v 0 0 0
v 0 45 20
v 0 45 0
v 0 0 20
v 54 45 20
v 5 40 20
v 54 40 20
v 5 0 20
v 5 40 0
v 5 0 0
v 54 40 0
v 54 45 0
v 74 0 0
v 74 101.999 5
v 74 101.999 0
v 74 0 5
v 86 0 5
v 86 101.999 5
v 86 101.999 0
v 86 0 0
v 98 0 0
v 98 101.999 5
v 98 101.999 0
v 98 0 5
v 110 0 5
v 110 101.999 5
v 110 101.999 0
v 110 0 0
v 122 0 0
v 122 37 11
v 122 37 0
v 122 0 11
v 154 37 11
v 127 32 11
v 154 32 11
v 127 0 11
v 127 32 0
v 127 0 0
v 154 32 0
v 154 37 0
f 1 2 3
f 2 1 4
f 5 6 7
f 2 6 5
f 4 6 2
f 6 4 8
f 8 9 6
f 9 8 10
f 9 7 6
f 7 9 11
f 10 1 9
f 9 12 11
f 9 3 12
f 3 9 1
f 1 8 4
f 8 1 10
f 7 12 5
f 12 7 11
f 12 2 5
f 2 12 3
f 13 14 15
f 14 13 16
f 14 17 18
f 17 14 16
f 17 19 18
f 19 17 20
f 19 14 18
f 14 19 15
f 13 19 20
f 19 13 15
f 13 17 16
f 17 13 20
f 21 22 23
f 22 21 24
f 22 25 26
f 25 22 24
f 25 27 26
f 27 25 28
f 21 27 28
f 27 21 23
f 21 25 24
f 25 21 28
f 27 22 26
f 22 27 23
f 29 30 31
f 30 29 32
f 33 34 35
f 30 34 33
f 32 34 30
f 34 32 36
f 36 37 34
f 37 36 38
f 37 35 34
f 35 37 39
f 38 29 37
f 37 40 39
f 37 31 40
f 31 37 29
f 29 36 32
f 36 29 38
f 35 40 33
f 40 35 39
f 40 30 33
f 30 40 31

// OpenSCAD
union() {
	union() {
		union() {
			union() {
				translate(v = [0, 0, 0]) {
					cube(size = [5, 40, 20]);
				}
				translate(v = [0, 40, 0]) {
					cube(size = [54, 5, 20]);
				}
			}
			translate(v = [74, 0, 0]) {
				cube(size = [12, 101.9989522119, 5]);
			}
		}
		translate(v = [98, 0, 0]) {
			cube(size = [12, 101.9989522119, 5]);
		}
	}
	union() {
		translate(v = [122, 0, 0]) {
			cube(size = [5, 32, 11]);
		}
		translate(v = [122, 32, 0]) {
			cube(size = [32, 5, 11]);
		}
	}
}
/***********************************************
*********      SolidPython code:      **********
************************************************
 
## This program finds the required torque
## for each joint of a robotic arm. 
## Jorge Garza

import argparse
import json
import operator
import subprocess
# Numpy-stl
from stl import mesh
from mpl_toolkits import mplot3d
from matplotlib import pyplot
# SolidPython
from solid import *
from solid.utils import *


## (In mm) Average Width of material
AVG_WIDTH = 20
## (In mm) Average Thickness of materials
AVG_TICKNES = 5
## (In mm) Min Distance between Servos
## [Gripper, Wrist2, Wrist, Ulna, Humerus, Base]
AVG_MIN_SERVO_SPACE = [0,40,(40*2+AVG_TICKNES),40,40,40]
## MINIMIZE or MAXIMIZE
## This means that the program will try to make the parts large 
## where Maximize or true is indicated, and will try to use the minimum 
## servo space where Minimize or false is indicated. 
## [Gripper, Wrist2, Wrist, Ulna, Humerus, Base]
SPEC_MIN_MAX = [False, False, False, True, True, False]

#######################################
##  CALCULATE ROBOTIC ARM PARTS #######
#######################################

def find_roboticarm_sizes (arm_length, object_tolift_weight, DoF, 
							min_servo_space, spec_min_max, material_densty):

	## Tuple of arm [[Length],[Weight]]
	## Length (In mm)  of each arm extremity from pivot to pivot.	
	## Starting from gripper to base 
	## Weight (In g)  of each arm extremity	 
	## Starting from gripper to base
	arm_tuple_list = [[], []]
	LENGTH = 0
	WEIGHT = 1


	curr_alength = arm_length
	AVG_DENSITY = 1.2/1000.0	## (in g/mm^3) Average density of X material
	MIN_SERVO_SPACE = 40 		## (In mm) Min Servo space between joints. 
	GRIPPER_MUL = 1.5			## Gripper multiplier number
	material_half_weight = material_densty/1000.0 * AVG_TICKNES * AVG_WIDTH
	for x in range(1, DoF+1):
		alength = 0
		aweight = 0

		## (1DoF) Gripper 
		if (x == 1):
			## Get Volume = (weight (g) / density (g/cm^3) ) and multiply it by 2
			min_gripper = 1.5 * (((object_tolift_weight) / AVG_DENSITY)**(1/3.0))
			if (DoF == 1):
				if (curr_alength < min_gripper):
					print "Gripper may not grab the object"
				alength = curr_alength
				aweight = (material_half_weight * alength)
			else:

				if (curr_alength < min_gripper):
					print "Gripper can't accommodate servo"
					return None

				## Maximize or Minimize the joint
				if (spec_min_max[x-1] == True):
					## Maximize the length of this joint
					missing_space = 0
					missing_toMaximize = 1
					for i in range(x, DoF):
						if (spec_min_max[i] == False):
							missing_space = missing_space + min_servo_space[i]
						if (spec_min_max[i] == True):
							missing_toMaximize = missing_toMaximize + 1
					alength = ((curr_alength) - missing_space) / missing_toMaximize
				else:
					## Don't maximize this joint
					alength = min_gripper

				aweight = (material_half_weight * alength)
				curr_alength = curr_alength - alength
			arm_tuple_list[LENGTH].append(alength)
			arm_tuple_list[WEIGHT].append(aweight)

		## (2DoF) Wrist
		if (x == 2):
			min_wrist = min_servo_space[x-1]
			if (DoF == 2):
				if (curr_alength < min_wrist):
					print "Wrist may not accommodate servo"
				alength = curr_alength
				aweight = (material_half_weight * alength)
			else:
				if (curr_alength < min_wrist):
					print "Wrist can't accommodate servo"
					return None

				## Maximize or Minimize the joint
				if (spec_min_max[x-1] == True):
					## Maximize the length of this joint
					missing_space = 0
					missing_toMaximize = 1
					for i in range(x, DoF):
						if (spec_min_max[i] == False):
							missing_space = missing_space + min_servo_space[i]
						if (spec_min_max[i] == True):
							missing_toMaximize = missing_toMaximize + 1
					alength = ((curr_alength) - missing_space) / missing_toMaximize
				else:
					## Don't maximize this joint
					alength = min_wrist

				aweight = (material_half_weight * alength)
				curr_alength = curr_alength - alength
			arm_tuple_list[LENGTH].append(alength)
			arm_tuple_list[WEIGHT].append(aweight)

		## (3DoF) Wrist 2
		if (x == 3):
			min_wristtwo = min_servo_space[x-1]
			if (DoF == 2):
				if (curr_alength < min_wristtwo):
					print "Wrist may not accommodate servo"
				alength = curr_alength
				aweight = (material_half_weight * alength)
			else:
				if (curr_alength < min_wristtwo):
					print "Wrist can't accommodate servo"
					break;

				## Maximize or Minimize the joint
				if (spec_min_max[x-1] == True):
					## Maximize the length of this joint
					missing_space = 0
					missing_toMaximize = 1
					for i in range(x, DoF):
						if (spec_min_max[i] == False):
							missing_space = missing_space + min_servo_space[i]
						if (spec_min_max[i] == True):
							missing_toMaximize = missing_toMaximize + 1
					alength = ((curr_alength) - missing_space) / missing_toMaximize
				else:
					## Don't maximize this joint
					alength = min_wristtwo

				aweight = (material_half_weight * alength)
				curr_alength = curr_alength - alength
			arm_tuple_list[LENGTH].append(alength)
			arm_tuple_list[WEIGHT].append(aweight)

		## (4DoF) Ulna
		if (x == 4):
			min_ulna = min_servo_space[x-1]
			if (DoF == 4):
				if (curr_alength < min_ulna):
					print "Ulna may not accommodate servo"
				alength = curr_alength
				aweight = (material_half_weight * alength)
			else:
				if (curr_alength < min_ulna):
					print "Ulna can't accommodate servo"
					return None

				## Maximize or Minimize the joint
				if (spec_min_max[x-1] == True):
					## Maximize the length of this joint
					missing_space = 0
					missing_toMaximize = 1
					for i in range(x, DoF):
						if (spec_min_max[i] == False):
							missing_space = missing_space + min_servo_space[i]
						if (spec_min_max[i] == True):
							missing_toMaximize = missing_toMaximize + 1
					alength = ((curr_alength) - missing_space) / missing_toMaximize
				else:
					## Don't maximize this joint
					alength = min_ulna

				##alength = ((curr_alength - MIN_SERVO_SPACE) / 2.0)
				aweight = (material_half_weight * alength)
				curr_alength = curr_alength - alength
			arm_tuple_list[LENGTH].append(alength)
			arm_tuple_list[WEIGHT].append(aweight)

		## (5DoF) Humerus
		if (x == 5):
			min_humerus = min_servo_space[x-1]
			if (DoF == 5):
				if (curr_alength < min_humerus):
					print "Humerus may not accommodate servo"
				alength = curr_alength
				aweight = (material_half_weight * alength)
			else:
				if (curr_alength < min_humerus):
					print "Humerus can't accommodate servo"
					return None

				## Maximize or Minimize the joint
				if (spec_min_max[x-1] == True):
					## Maximize the length of this part
					missing_space = 0
					missing_toMaximize = 1
					for i in range(x, DoF):
						if (spec_min_max[i] == False):
							missing_space = missing_space + min_servo_space[i]
						if (spec_min_max[i] == True):
							missing_toMaximize = missing_toMaximize + 1
					alength = ((curr_alength) - missing_space) / missing_toMaximize
				else:
					## Don't maximize this part
					alength = min_humerus

				aweight = (material_half_weight * alength)
				curr_alength = curr_alength - alength
			arm_tuple_list[LENGTH].append(alength)
			arm_tuple_list[WEIGHT].append(aweight)

		## (6DoF) Base
		if (x == 6):
			min_base = min_servo_space[x-1]
			if (curr_alength < min_base):
				print "Base can't accommodate servo"
				return None

			## Maximize or Minimize the joint
			if (spec_min_max[x-1] == True):
				alength = curr_alength
			else:
				alength = min_base

			aweight = (material_half_weight * alength)
			curr_alength = curr_alength - alength
			arm_tuple_list[LENGTH].append(alength)
			arm_tuple_list[WEIGHT].append(aweight)


		if (x >= 7):
			print "Robotic Arm can't have more than 6 degrees of freedom"
			return None


	return arm_tuple_list


def find_roboticarm_servos (arm_tuple_list, object_tolift_weight, DoF, 
							servo_torque_dic):

	## Find two available servos for the stall torque found. 
	def find_servo (torque, dictionary):
		print ("Torque Required for joint {} ".format(torque))
		for x in range(len(dictionary)):
			if (dictionary[x][1][0] > torque):
				return servo_torque_dic[x]
		# If nothing found
		return None

	## (In mm) Length of each arm extremity from pivot to pivot.	
	## Starting from gripper to base 
	arm_length_list = arm_tuple_list[0]
	## (In g) Weight of each arm extremity	 
	## Starting from gripper to base
	arm_weight_list =  arm_tuple_list[1]

	print arm_length_list
	print arm_weight_list


	## Find stall torque required for each servo.
	roboticarm_dic = {}
	## (In kg) Weight of each joints/servos, the first value being the object to lift.
	## Starting from object weight to base 	 
	servos_weight_list = [object_tolift_weight]
	for i in range(DoF):
		torque = 0
		length_sum = 0
		for x in reversed(range(0,i+1)):
			## Do the calculation of torque using Kg and cm.
			arm_length = arm_length_list[x] / 10.0 			## From mm to cm
			arm_weight = arm_weight_list[x] / 1000.0		## From g to kg
			servo_weight =  servos_weight_list[x] / 1000.0 	## From g to kg
			torque += ( ((arm_length + length_sum) * servo_weight) +
				(((0.5 * arm_length) + length_sum) * arm_weight) )
			length_sum += arm_length

		## Fin Servo for the found torque	
		servo = find_servo(torque, servo_torque_dic)

		if (servo == None): 
			print "No servo fit required torque of {} kg/cm".format(torque)
			return None

		## Append the weight of the servo found to the servo_weight_list
		## and Translate the weight from g to kg. 
		servos_weight_list.append(servo[1][1])
		print servo
		roboticarm_dic.update({i:(servo, torque, arm_length_list[i])})

	## return Robotic ARM dictionary
	print roboticarm_dic
	return roboticarm_dic


## Get The Min Servo Spaces Constrains for each joint
def get_min_servo_spaces (roboticarm_dic, DoF):

	## --- Dictionary Data --- (TODO Ordrer this)
	## Joints 
	dic_base = 5
	dic_humerus = 4
	dic_ulna = 3
	dic_wrist = 2
	dic_wrist2 = 1
	dic_gripper = 0
	## Data
	dic_servoData = 0
	dic_requiredTorque = 1
	dic_armLen = 2
	## servoData
	dic_servoLink = 0
	dic_servoSizes = 1
	## sevrvoSizes
	dic_Torque = 0
	dic_Weight = 1
	dic_A = 2
	dic_B = 3
	dic_C = 4
	dic_D = 5
	dic_E = 6
	dic_F = 7

	min_servo_space = []

	for x in range(1, DoF+1):

		## (1DoF) Gripper 
		if (x == 1):
			min_servo_space.append(0)
		## (2DoF) Wrist (TODO)
		if (x == 2):
			min_servo_space.append(40)
		## (3DoF) Wrist 2
		if (x == 3):
			wrist2_ALen = roboticarm_dic[dic_wrist2][dic_servoData][dic_servoSizes][dic_A]
			wrist_ELen = roboticarm_dic[dic_wrist][dic_servoData][dic_servoSizes][dic_E]
			min_servo_space.append(wrist2_ALen+AVG_TICKNES+wrist_ELen)
		## (4DoF) Ulna
		if (x == 4):
			wrist_ELen = roboticarm_dic[dic_wrist][dic_servoData][dic_servoSizes][dic_E]
			ulna_ELen = roboticarm_dic[dic_ulna][dic_servoData][dic_servoSizes][dic_E]
			min_servo_space.append(wrist_ELen+ulna_ELen)
		## (5DoF) Humerus
		if (x == 5):
			ulna_ELen = roboticarm_dic[dic_ulna][dic_servoData][dic_servoSizes][dic_E]
			humerus_ELen = roboticarm_dic[dic_humerus][dic_servoData][dic_servoSizes][dic_E]
			min_servo_space.append(ulna_ELen+humerus_ELen)
		## (6DoF) Base
		if (x == 6):
			humerus_ELen = roboticarm_dic[dic_humerus][dic_servoData][dic_servoSizes][dic_E]
			min_servo_space.append(humerus_ELen)

		if (x >= 7):
			print "Robotic Arm can't have more than 6 degrees of freedom"
			return None


	return min_servo_space



## Finds the servos and 3D part lengths
## arm_length (in cm)
## object_tolift_weight (in kg)
## DoF (From 1 to 6)
## material (Material to use)
def get_roboticarm_dic (arm_length, object_tolift_weight, DoF, material, display_materials):

	## Load json Servo List
	data = json.load(open('servos3.json'))
	servo_torque_dic = {}
	for data_list in data:
		servo_torque_dic.update({data_list['Servo']:					## Key, link to Servo part
								(data_list['Torque(kg)(min. 0.01kg)'],	## Torque in (kg/cm)
								 data_list['Weight(g)'],				## Weight in grams (g)
								 data_list['A(mm)'],					## Total Servo Height
								 data_list['B(mm)'],					
								 data_list['C(mm)'],
								 data_list['D(mm)'],					## Total Servo Width
								 data_list['E(mm)'],					## Total Servo Length
								 data_list['F(mm)'])})		
	## Sort List by Torque
	servo_torque_dic = sorted(servo_torque_dic.items(), key=lambda x:x[1][0])

	## Load json Densities List
	data = json.load(open('densities.json'))
	materials_densities_dic = {}
	for data_list in data:
		materials_densities_dic.update({data_list['Material']: 	## Name of Material
									 	data_list['Density']})	## Material Density in (g/cm^3)

	## Display available materials if requested, then exits. 
	if (display_materials):
		print "-- Avialble materials:"
		for materials in materials_densities_dic:
			print materials

		exit(0)


	## Get Material Density if found in the material densities dictionay 
	material_densty = ""
	if material in materials_densities_dic:
		## Get Material Density from dictionary
		material_densty = materials_densities_dic[material]
	else:
		print "Material '{}' not found in the materials list".format(material)
		return None


	## Find Arm length and its weight for each joint
	arm_tuple_list = find_roboticarm_sizes(arm_length, object_tolift_weight, DoF,
											AVG_MIN_SERVO_SPACE, SPEC_MIN_MAX,
											material_densty)
	if (arm_tuple_list == None):
		return None
	
	## Find servos and required torque according the calculated arm lengths.  
	roboticarm_dic = find_roboticarm_servos(arm_tuple_list, object_tolift_weight, DoF,
											servo_torque_dic)
	if (roboticarm_dic == None):
		return None

	## Get new min min servo spaces with the caluclated servos. 
	min_servo_space = get_min_servo_spaces(roboticarm_dic, DoF)

	## NOW WITH NEW MIN SERVO SPACE REQUIREMENTS ##
	## TODO PUT THIS IN AL LOOP OR FUNCTION

	print " "
	print min_servo_space
	print " "

	## Find Arm length and its weight for each joint
	arm_tuple_list = find_roboticarm_sizes(arm_length, object_tolift_weight, DoF,
											min_servo_space,  SPEC_MIN_MAX, 
											material_densty)
	if (arm_tuple_list == None):
		return None
	
	## Find servos and required torque according the calculated arm lengths.  
	roboticarm_dic = find_roboticarm_servos(arm_tuple_list, object_tolift_weight, DoF,
											servo_torque_dic)
	if (roboticarm_dic == None):
		return None


	# Return robot arm_length_list
	return roboticarm_dic



##########################
##  3D PRINT PARTS #######
##########################


## Conversts a scad object to a SCAD file and then to a STL file
def save_to_stl (scad_obj, output_name):

	scad_output_name = output_name + ".scad"
	stl_output_name = output_name + ".stl"

	scad_render_to_file(scad_obj, scad_output_name)

	args = ["openscad", "-o", stl_output_name, "-D", 'quality="production"', scad_output_name];

	try:
		subprocess.check_call(args)
	except subprocess.CalledProcessError as e:
		print "Could not convert SCAD to STL"

	return

## Plots a 3D representation of a stl file name using matlibplot
def plot_stl (input_name):
    stl_input_name = input_name + ".stl"

    # Create a new plot
    figure = pyplot.figure()
    axes = mplot3d.Axes3D(figure)

    # Load the STL files and add the vectors to the plot
    file_mesh = mesh.Mesh.from_file(stl_input_name)
    axes.add_collection3d(mplot3d.art3d.Poly3DCollection(file_mesh.vectors))

    # Auto scale to the mesh size
    scale = file_mesh.points.flatten(-1)
    axes.auto_scale_xyz(scale, scale, scale)

    # Show the plot to the screen
    pyplot.show()

    return 


def generate_3d_parts (roboticarm_dic, display):

    ## --- Dictionary Data --- (TODO Ordrer this)
    ## Joints 
    dic_base = 5
    dic_humerus = 4
    dic_ulna = 3
    dic_wrist = 2
    dic_wrist2 = 1
    dic_gripper = 0
    ## Data
    dic_servoData = 0
    dic_requiredTorque = 1
    dic_armLen = 2
    ## servoData
    dic_servoLink = 0
    dic_servoSizes = 1
    ## sevrvoSizes
    dic_Torque = 0
    dic_Weight = 1
    dic_A = 2
    dic_B = 3
    dic_C = 4
    dic_D = 5
    dic_E = 6
    dic_F = 7

    print roboticarm_dic

    tick = AVG_TICKNES



    ## Arms of the robotic arm
    base_off = 0
    base_length = roboticarm_dic[dic_base][dic_armLen]
    base_bLen = roboticarm_dic[dic_base][dic_servoData][dic_servoSizes][dic_E]
    base_height = roboticarm_dic[dic_base-1][dic_servoData][dic_servoSizes][dic_D]
    base = part_base (base_off, base_length, base_bLen, tick, base_height)

    humerus_off = (base_off + base_bLen + base_height)
    humerus_length = roboticarm_dic[dic_humerus][dic_armLen]
    humerus_height = roboticarm_dic[dic_humerus-1][dic_servoData][dic_servoSizes][dic_D]
    humerus = part_humerus(humerus_off, humerus_length, tick, humerus_height)

    ulna_off = (humerus_off + (humerus_height*2))
    ulna_length = roboticarm_dic[dic_ulna][dic_armLen]
    ulna_height = roboticarm_dic[dic_ulna-1][dic_servoData][dic_servoSizes][dic_D]
    ulna = part_humerus(ulna_off, ulna_length, tick, ulna_height)

    wrist_off = (ulna_off + (ulna_height*2))
    wrist_bLen = roboticarm_dic[dic_wrist][dic_servoData][dic_servoSizes][dic_E]
    wrist2_ALen = roboticarm_dic[dic_wrist2][dic_servoData][dic_servoSizes][dic_A]
    ## Reduce the Wrist2 servo motor fromt the Wrist arm length (TODO make this a spec)
    wrist_length = roboticarm_dic[dic_wrist][dic_armLen] - wrist2_ALen - tick
    wrist_height = roboticarm_dic[dic_wrist-1][dic_servoData][dic_servoSizes][dic_D]
    wrist = part_wrist (wrist_off, wrist_length, wrist_bLen, tick, wrist_height)

    scad_obj = base + humerus + ulna + wrist

    save_to_stl (scad_obj, "arms_stl")
    if (display):
        plot_stl ("arms_stl")



    ## Gripper

    A = roboticarm_dic[dic_gripper][dic_servoData][dic_servoSizes][dic_A]
    B = roboticarm_dic[dic_gripper][dic_servoData][dic_servoSizes][dic_B]
    D = roboticarm_dic[dic_gripper][dic_servoData][dic_servoSizes][dic_D]
    F = roboticarm_dic[dic_gripper][dic_servoData][dic_servoSizes][dic_F]
    objectLen = 10

    # gripper_cage =  part_cage(tick, B, D, F, objectLen)
    # gripper1 =  translate([B+D,0,0]) (part_gripper(tick, A, D, F, objectLen))
    # gripper2 = translate([B+D,D*2,0]) (part_gripper(tick, A, D, F, objectLen))

    # scad_obj = gripper_cage + gripper1 + gripper2
    # save_to_stl (scad_obj, "gripper_stl")
    # if (display):
    #     plot_stl ("gripper_stl")


    ## Base Support
    scad_obj = part_support(tick, B, D, F)
    save_to_stl (scad_obj, "support_stl")
    if (display):
        plot_stl ("support_stl")


    return

def part_base (off, length, bLen, tick, height):

    base = translate([off,0,0])(
            cube([tick, length, height])
           ) + translate([0,length,0])(
            cube([bLen,tick, height])
           )
    return base


def part_humerus (off, length, tick, height):

    humerus = translate([off,0,0])(
                cube([height,length,tick])
              )
    return humerus


def part_ulna (off, length, tick, height):

    ulna = translate([off,0,0])(
                cube([height,length,tick])
              )
    return ulna

def part_wrist (off, length, bLen, tick, height):

    wrist = translate([off,0,0])(
                cube([tick, length, height])
            ) + translate([off,length,0])(
                cube([bLen,tick,height])
            )
    return wrist



def part_gripper (tick, A, D, F, objectLen):

	## Basic Info
    gearSpace = A - F
    gripperLen = objectLen
    
    ## Starts and Lengths
    extraSpaceStart = gripperLen + tick
    extraSpaceLen = gearSpace + gearSpace/4.0
    holdersStart = extraSpaceStart+extraSpaceLen+tick
    holdersLen = tick+0.5
    TotalLen = holdersStart + holdersLen + tick
    
    ## Width and heigth
    heigth = tick*4.0
    width = D + (tick*6.0)
    
    ## A small hole
    holeStart = extraSpaceStart +  gearSpace/2.0;
    
    gripper = difference() (
        cube([TotalLen,width,heigth]),
        translate([extraSpaceStart,tick,-0.1]) (cube([extraSpaceLen,width-(tick*2.0),heigth+1])),
        translate([extraSpaceStart,tick*2.0,-0.1]) (cube([TotalLen-extraSpaceStart+ 0.1,width-(tick*4.0),heigth+1])),
        translate([holdersStart,tick,-0.1]) (cube([holdersLen, width-(tick*2.0), heigth+1])),
        translate([-0.1,-0.1,-0.1]) (cube([gripperLen, width/3.0+(0.1), heigth+1])),
        translate([-0.1,width-(width/3.0)+(0.1),-0.1]) (cube([gripperLen, width/3.0, heigth+1])),
        
        ## A small hole
        translate([holeStart,-0.1,heigth/2.0]) (cube([tick,tick+0.2,tick]))
    )


    return gripper


def part_cage(tick, B, D, F, objectLen):
    ## Inside is equal to size plus tick
    B=B+(tick*2)
    D=D+(tick*2)
    F=F+(tick*2)

    if (objectLen > B):
        holderSpace = (objectLen - B)/2.0
    else:
        holderSpace = tick

    cage = difference() (
        union() (
            cube([B,D,F]),
            ## For conecting grippers
            translate([-holderSpace,-tick*2.0,F-tick]) (cube([B+(holderSpace*2.0),D+(tick*4.0),tick])),
        ),
        ## Z
        translate([tick,tick,tick]) (cube([B-(tick*2.0),D-(tick*2),F])),
        ## X
        translate([-1,tick,tick]) (cube([B+2,D-(tick*2.0),F/2.0-tick])),
        ## Y
        translate([tick,tick,tick]) (cube([B-(tick*2.0),D-(tick*2.0),F-(tick*2.0)]))
    )
   
    return cage

def part_support(tick, B, D, F):
    ## Exta space so servo can fit (in mm)
    ExtraD = 2.0
    ExtraB = 3.0
    ## Inside size is equal to servo dimensions plus tick
    B=B+(tick*2)+(ExtraB)
    D=D+(tick*2)+(ExtraD)
    F=F+(tick)

    base = union() (

    	difference() (
    		cube([B,D,F]),
	        ## Z
	        translate([tick,tick,tick]) (cube([B-(tick*2.0),D-(tick*2),F])),
	        ## X
	        translate([-1,tick,tick]) (cube([B+2,D-(tick*2.0),F/2.0-tick])),
	        ## Y
	        translate([tick,tick,tick]) (cube([B-(tick*2.0),D-(tick*2.0),F-(tick*2.0)]))
    	),

    	## Legs
	    translate([B/2-B/8,-B*2+D,0]) (cube([B/4,B*4-D,tick])),
    	translate([-B*2+B/2,D/2-D/4,0]) (cube([B*4,B/4,tick]))

	)
   
    return base



def main():

    ## RoboticArm command line Arguments
    parser = argparse.ArgumentParser(
        description="Automatically generate 3D files for building a Robotic Arm"
    )
    parser.add_argument("-l","--length",
                        help="The length of the robotic arm in centimetrs (cm)",
                        type=int,
                        required=True)
    parser.add_argument("-w","--weight",
                        help="Weight of the object to carry in grams (g)",
                        type=int,
                        required=True)
    parser.add_argument("-m","--material",
                        help="Material Density to use, 'PLA Filament' by default",
                        type=str,
                        default='PLA Filament',
                        dest='material')
    parser.add_argument("-d","--display",
                        help="Displays the generated 3D parts",
                        action='store_true', dest='display')
    parser.add_argument("-a","--available",
                        help="Displays the list of available materials",
                        action='store_true', dest='available')

    args = parser.parse_args()

    ## Number of joints/servos / Degrees of Freedom
    DoF = 6
    ## (In kg) Weight of the object to lift.		
    #object_tolift_weight = 0.058
    ## (In cm) ARM length
    #arm_length = 30


    roboticarm_dic = get_roboticarm_dic(args.length*10.0, args.weight, 
    									DoF, args.material, args.available)
    if (roboticarm_dic == None):
    	print "Robotic Arm Error, Exit..."
    	exit(1)
    else:
    	generate_3d_parts(roboticarm_dic, args.display)



    ## Exit
    exit(0)




if __name__ == "__main__":
	main()


 
 
************************************************/
